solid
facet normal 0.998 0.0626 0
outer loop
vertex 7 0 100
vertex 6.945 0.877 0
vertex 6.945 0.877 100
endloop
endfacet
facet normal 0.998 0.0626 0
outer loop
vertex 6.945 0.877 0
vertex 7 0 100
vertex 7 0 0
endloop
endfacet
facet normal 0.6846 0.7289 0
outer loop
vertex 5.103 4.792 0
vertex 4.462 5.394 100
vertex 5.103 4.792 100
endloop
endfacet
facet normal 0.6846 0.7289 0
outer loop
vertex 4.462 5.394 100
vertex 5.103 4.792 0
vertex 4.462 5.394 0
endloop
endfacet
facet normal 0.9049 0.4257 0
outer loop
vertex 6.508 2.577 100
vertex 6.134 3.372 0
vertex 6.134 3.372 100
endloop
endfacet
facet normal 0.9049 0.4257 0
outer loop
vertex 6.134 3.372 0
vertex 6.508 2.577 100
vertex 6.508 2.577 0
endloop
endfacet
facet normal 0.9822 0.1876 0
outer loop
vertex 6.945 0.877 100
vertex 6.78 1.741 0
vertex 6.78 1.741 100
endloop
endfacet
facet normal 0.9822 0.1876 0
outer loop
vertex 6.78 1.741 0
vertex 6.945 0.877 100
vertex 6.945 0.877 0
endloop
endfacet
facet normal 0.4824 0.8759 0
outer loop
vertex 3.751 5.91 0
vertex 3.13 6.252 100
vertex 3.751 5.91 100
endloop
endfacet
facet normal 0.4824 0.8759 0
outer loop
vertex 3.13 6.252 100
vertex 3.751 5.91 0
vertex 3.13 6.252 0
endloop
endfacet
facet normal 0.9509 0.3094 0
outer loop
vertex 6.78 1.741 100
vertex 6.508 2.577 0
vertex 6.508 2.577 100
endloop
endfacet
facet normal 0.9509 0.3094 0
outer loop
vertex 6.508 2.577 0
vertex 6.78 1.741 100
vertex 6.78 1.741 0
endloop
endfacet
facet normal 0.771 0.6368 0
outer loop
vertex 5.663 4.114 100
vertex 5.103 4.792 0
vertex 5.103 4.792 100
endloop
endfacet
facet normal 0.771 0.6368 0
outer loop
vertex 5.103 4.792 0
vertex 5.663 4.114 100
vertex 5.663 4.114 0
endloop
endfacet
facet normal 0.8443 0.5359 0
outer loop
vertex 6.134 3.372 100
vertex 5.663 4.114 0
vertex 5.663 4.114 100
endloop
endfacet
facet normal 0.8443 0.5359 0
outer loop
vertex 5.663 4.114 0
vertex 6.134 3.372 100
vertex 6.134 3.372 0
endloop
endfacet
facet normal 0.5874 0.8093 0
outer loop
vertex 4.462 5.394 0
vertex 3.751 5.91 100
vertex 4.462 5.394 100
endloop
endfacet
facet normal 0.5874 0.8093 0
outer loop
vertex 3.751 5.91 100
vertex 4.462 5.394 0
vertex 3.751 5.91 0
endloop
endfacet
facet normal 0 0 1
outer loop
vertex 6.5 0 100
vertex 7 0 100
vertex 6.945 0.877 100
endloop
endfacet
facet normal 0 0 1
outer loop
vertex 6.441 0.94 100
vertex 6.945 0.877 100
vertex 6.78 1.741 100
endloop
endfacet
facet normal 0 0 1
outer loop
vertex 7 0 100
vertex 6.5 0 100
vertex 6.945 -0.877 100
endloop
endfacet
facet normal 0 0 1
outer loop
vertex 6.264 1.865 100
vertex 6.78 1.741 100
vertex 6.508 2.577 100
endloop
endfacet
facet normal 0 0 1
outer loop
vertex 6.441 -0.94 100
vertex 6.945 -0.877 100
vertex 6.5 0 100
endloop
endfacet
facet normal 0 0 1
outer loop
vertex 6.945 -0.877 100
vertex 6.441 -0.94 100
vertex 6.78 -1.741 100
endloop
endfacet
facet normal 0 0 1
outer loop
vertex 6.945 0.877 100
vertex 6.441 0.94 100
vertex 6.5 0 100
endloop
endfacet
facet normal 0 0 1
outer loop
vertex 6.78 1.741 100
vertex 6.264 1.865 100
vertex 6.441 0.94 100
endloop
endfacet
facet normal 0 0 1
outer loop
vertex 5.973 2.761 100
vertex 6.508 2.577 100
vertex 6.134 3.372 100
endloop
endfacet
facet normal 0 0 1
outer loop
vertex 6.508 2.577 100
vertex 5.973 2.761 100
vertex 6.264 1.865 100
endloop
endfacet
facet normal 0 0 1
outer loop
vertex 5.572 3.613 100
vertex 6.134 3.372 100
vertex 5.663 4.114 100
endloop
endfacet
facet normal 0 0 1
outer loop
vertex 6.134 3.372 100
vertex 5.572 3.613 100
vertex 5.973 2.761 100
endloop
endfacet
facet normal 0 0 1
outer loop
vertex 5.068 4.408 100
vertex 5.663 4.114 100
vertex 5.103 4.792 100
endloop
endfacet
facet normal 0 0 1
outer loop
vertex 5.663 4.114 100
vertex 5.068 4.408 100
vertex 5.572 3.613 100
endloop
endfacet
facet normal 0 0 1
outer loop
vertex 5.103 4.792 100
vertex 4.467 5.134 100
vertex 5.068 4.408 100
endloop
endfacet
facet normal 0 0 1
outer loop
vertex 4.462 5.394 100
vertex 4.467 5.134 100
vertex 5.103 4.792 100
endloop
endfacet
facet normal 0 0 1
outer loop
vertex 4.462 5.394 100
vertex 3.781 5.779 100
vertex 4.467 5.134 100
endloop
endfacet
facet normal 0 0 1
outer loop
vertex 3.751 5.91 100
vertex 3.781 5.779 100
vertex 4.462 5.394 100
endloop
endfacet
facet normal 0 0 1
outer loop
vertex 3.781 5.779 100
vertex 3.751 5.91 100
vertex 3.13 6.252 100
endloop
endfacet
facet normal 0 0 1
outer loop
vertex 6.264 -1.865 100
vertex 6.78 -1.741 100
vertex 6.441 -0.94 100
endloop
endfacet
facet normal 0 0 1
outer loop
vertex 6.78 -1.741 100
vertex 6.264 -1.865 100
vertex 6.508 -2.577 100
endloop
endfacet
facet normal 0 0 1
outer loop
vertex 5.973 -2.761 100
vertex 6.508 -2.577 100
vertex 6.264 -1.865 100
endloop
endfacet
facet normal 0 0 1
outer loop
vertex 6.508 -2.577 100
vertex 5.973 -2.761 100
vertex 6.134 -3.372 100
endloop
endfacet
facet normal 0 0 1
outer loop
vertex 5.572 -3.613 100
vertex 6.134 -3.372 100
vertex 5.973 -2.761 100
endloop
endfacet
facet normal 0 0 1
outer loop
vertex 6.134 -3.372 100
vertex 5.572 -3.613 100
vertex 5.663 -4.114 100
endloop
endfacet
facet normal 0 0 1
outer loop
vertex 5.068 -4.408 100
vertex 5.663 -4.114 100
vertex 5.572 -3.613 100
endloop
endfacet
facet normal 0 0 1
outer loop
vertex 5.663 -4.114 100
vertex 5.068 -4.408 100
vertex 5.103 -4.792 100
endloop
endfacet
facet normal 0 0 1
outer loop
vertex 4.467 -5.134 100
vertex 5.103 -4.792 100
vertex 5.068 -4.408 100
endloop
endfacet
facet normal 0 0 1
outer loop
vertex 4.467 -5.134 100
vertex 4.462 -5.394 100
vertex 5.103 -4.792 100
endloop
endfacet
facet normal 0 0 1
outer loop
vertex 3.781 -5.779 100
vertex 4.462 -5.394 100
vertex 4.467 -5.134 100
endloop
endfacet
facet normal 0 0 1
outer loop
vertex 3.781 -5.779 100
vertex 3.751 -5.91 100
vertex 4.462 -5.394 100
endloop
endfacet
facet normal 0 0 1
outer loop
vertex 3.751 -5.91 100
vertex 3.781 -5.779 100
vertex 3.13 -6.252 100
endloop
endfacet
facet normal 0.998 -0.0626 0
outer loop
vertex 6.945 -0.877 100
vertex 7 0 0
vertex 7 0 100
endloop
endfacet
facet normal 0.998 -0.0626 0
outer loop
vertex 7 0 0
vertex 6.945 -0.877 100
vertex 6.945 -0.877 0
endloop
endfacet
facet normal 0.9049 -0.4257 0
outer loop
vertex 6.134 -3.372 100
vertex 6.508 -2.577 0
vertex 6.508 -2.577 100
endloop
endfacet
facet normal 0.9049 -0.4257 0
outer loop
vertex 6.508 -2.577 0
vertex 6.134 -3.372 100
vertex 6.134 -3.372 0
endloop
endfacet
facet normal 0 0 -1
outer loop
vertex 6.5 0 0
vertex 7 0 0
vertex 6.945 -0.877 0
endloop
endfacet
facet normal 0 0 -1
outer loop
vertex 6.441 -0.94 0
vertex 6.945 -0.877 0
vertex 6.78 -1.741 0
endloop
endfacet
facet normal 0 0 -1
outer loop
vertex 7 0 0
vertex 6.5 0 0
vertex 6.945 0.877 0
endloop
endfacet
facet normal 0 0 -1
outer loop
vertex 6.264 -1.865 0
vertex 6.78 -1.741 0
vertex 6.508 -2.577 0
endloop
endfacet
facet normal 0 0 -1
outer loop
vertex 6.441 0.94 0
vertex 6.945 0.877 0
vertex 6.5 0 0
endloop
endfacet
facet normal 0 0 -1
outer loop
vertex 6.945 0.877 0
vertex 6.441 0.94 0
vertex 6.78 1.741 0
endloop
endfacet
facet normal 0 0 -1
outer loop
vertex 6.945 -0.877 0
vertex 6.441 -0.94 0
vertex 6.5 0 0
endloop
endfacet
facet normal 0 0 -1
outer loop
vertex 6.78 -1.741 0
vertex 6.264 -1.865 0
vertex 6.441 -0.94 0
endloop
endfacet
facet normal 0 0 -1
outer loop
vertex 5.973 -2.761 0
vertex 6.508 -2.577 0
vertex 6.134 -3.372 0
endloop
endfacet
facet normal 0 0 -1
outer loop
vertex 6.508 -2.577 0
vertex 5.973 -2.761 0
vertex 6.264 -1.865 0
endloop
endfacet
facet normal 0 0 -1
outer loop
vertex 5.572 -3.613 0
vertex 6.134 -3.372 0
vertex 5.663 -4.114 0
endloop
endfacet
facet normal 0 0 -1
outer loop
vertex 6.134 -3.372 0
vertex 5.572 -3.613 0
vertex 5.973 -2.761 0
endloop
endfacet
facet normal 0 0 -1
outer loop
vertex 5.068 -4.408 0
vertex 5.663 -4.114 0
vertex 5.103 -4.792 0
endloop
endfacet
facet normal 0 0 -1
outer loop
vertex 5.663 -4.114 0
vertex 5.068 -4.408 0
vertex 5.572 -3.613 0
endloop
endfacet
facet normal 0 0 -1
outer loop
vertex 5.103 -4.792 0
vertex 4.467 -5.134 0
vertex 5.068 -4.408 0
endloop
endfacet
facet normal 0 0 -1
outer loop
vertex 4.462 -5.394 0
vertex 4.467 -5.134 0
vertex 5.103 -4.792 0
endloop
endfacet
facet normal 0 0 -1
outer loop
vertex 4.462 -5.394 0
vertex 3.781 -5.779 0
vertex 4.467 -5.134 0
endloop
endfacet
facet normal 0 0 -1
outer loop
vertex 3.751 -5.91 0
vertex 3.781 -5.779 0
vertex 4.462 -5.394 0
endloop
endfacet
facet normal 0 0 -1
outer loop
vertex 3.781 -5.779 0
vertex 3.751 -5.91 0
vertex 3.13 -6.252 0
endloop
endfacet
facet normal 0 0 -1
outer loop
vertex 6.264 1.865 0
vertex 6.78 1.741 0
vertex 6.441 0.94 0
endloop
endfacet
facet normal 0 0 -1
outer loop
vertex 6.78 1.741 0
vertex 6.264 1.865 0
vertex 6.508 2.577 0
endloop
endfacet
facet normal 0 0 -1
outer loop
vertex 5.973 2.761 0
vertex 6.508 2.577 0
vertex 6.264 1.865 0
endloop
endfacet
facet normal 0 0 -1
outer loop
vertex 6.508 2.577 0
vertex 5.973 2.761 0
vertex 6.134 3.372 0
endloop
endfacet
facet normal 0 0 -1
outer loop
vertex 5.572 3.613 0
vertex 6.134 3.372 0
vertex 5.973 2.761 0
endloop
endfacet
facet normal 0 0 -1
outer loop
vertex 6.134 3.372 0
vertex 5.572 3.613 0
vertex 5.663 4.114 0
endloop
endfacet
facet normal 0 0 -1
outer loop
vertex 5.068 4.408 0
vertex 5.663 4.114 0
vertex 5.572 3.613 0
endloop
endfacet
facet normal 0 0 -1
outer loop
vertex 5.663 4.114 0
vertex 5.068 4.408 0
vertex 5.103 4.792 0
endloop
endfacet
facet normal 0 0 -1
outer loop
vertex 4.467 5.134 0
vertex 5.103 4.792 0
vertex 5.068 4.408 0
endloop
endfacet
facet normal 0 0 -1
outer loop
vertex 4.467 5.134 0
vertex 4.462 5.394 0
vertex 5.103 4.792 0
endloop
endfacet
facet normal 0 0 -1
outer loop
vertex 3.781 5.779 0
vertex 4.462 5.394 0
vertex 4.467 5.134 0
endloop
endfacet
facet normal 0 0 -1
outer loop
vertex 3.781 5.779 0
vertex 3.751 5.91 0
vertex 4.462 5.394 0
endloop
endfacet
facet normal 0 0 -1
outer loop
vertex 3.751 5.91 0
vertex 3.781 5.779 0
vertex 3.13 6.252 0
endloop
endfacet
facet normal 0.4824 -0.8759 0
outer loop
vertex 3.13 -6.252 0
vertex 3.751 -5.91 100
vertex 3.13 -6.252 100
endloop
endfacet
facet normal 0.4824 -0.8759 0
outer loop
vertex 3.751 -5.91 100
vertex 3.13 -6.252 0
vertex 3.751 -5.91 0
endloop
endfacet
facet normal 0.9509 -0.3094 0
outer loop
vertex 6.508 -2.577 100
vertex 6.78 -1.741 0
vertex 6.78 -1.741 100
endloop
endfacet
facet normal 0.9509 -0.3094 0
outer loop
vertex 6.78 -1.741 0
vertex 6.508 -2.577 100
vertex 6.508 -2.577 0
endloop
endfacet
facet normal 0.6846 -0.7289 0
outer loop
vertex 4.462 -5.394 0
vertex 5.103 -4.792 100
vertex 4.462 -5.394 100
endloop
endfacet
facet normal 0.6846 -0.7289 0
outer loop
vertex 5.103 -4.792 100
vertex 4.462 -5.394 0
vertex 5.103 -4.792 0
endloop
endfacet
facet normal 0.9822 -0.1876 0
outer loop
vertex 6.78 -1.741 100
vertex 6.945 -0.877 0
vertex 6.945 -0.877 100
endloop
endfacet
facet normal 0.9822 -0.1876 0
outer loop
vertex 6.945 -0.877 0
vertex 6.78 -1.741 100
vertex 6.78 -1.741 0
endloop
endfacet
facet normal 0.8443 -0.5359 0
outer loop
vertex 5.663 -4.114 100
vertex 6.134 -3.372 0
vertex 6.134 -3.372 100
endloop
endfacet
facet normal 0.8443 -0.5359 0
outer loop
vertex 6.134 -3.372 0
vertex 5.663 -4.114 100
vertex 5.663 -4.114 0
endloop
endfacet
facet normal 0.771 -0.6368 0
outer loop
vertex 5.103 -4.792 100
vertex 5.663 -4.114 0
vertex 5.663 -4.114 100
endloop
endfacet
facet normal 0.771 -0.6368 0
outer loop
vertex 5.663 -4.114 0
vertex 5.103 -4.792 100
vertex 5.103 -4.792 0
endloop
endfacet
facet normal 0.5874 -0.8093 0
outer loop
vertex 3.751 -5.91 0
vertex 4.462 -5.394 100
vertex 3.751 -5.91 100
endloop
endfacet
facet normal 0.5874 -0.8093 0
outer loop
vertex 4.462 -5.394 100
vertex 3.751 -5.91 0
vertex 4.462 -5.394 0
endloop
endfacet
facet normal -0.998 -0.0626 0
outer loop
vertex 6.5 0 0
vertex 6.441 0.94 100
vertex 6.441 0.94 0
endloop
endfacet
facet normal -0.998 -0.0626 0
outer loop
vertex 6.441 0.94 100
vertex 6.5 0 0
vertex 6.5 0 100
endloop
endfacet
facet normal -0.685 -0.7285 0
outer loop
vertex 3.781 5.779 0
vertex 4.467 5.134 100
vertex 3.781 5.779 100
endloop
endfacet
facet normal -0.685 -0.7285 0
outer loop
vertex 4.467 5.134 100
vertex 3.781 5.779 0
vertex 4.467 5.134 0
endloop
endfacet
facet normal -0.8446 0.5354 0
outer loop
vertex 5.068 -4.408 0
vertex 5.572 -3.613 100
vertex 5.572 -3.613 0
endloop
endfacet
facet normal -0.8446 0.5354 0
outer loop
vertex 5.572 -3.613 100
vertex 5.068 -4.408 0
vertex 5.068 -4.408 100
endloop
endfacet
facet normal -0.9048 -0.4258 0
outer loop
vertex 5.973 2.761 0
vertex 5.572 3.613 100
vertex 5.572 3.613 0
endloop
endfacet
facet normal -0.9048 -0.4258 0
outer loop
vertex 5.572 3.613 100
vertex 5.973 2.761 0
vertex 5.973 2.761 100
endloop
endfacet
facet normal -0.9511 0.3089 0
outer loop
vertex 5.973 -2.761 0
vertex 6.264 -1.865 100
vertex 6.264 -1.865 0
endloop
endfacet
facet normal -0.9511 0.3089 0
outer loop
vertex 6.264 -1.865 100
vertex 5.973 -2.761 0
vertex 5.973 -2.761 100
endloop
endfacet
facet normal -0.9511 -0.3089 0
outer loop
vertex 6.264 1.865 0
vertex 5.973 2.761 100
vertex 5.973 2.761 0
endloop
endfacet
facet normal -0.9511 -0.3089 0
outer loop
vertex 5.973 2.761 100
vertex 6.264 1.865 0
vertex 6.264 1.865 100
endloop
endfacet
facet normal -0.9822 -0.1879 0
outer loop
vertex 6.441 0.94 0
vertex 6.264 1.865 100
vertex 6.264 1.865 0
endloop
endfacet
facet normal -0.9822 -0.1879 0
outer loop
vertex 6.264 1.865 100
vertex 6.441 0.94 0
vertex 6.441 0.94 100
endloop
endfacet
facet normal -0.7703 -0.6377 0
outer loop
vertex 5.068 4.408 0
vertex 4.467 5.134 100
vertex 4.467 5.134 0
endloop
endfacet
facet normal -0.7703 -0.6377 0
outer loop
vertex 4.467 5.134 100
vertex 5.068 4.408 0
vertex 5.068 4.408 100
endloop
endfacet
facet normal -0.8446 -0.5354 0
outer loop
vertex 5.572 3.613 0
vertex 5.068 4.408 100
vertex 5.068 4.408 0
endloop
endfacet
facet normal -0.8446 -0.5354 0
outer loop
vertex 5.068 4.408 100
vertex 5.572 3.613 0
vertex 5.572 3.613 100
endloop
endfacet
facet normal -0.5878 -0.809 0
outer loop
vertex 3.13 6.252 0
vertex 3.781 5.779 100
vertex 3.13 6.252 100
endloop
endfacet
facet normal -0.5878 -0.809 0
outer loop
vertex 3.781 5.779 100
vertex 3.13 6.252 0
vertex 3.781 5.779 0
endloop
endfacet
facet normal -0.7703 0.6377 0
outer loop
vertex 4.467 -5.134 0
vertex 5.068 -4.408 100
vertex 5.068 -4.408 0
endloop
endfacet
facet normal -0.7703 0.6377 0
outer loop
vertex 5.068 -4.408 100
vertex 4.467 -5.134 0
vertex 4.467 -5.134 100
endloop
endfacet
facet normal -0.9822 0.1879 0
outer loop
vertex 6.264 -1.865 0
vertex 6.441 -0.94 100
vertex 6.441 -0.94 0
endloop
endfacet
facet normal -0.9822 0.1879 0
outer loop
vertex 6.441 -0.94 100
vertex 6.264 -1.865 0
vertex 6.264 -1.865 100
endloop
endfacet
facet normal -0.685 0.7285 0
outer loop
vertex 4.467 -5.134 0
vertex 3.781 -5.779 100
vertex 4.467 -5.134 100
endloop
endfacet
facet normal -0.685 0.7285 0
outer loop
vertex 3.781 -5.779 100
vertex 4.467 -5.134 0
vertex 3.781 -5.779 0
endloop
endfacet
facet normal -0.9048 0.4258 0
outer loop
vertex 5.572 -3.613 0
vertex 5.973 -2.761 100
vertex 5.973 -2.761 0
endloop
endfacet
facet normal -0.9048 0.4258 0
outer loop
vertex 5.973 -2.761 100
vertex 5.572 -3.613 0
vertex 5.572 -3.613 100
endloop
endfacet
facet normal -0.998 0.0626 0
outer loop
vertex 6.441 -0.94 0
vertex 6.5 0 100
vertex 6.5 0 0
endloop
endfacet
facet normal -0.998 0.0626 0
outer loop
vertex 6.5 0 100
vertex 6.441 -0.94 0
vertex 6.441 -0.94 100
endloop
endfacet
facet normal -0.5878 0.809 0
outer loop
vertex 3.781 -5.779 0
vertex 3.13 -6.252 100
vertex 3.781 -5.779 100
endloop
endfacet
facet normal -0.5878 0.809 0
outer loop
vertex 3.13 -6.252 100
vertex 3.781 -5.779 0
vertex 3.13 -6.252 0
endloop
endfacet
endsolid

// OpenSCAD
$fn = 50;


difference() {
	union() {
		cylinder(h = 100, r = 7.0000000000);
		translate(v = [-4.0000000000, 0, 0]) {
			cylinder(h = 100, r = 7.0000000000);
		}
	}
	union() {
		cylinder(h = 100, r = 3.2500000000);
		cylinder(h = 100, r = 1.8000000000);
		cylinder(h = 100, r = 1.8000000000);
		cylinder(h = 100, r = 1.8000000000);
		translate(v = [-8.5000000000, 0, 0]) {
			hull() {
				translate(v = [-3.7500000000, 0.0000000000, 0]) {
					cylinder(h = 100, r = 7.5000000000);
				}
				translate(v = [3.7500000000, 0.0000000000, 0]) {
					cylinder(h = 100, r = 7.5000000000);
				}
				translate(v = [-3.7500000000, -0.0000000000, 0]) {
					cylinder(h = 100, r = 7.5000000000);
				}
				translate(v = [3.7500000000, -0.0000000000, 0]) {
					cylinder(h = 100, r = 7.5000000000);
				}
			}
		}
		translate(v = [-1.0000000000, 0, 0.0000000000]) {
			cylinder(h = 100, r = 7.5000000000);
		}
	}
}
